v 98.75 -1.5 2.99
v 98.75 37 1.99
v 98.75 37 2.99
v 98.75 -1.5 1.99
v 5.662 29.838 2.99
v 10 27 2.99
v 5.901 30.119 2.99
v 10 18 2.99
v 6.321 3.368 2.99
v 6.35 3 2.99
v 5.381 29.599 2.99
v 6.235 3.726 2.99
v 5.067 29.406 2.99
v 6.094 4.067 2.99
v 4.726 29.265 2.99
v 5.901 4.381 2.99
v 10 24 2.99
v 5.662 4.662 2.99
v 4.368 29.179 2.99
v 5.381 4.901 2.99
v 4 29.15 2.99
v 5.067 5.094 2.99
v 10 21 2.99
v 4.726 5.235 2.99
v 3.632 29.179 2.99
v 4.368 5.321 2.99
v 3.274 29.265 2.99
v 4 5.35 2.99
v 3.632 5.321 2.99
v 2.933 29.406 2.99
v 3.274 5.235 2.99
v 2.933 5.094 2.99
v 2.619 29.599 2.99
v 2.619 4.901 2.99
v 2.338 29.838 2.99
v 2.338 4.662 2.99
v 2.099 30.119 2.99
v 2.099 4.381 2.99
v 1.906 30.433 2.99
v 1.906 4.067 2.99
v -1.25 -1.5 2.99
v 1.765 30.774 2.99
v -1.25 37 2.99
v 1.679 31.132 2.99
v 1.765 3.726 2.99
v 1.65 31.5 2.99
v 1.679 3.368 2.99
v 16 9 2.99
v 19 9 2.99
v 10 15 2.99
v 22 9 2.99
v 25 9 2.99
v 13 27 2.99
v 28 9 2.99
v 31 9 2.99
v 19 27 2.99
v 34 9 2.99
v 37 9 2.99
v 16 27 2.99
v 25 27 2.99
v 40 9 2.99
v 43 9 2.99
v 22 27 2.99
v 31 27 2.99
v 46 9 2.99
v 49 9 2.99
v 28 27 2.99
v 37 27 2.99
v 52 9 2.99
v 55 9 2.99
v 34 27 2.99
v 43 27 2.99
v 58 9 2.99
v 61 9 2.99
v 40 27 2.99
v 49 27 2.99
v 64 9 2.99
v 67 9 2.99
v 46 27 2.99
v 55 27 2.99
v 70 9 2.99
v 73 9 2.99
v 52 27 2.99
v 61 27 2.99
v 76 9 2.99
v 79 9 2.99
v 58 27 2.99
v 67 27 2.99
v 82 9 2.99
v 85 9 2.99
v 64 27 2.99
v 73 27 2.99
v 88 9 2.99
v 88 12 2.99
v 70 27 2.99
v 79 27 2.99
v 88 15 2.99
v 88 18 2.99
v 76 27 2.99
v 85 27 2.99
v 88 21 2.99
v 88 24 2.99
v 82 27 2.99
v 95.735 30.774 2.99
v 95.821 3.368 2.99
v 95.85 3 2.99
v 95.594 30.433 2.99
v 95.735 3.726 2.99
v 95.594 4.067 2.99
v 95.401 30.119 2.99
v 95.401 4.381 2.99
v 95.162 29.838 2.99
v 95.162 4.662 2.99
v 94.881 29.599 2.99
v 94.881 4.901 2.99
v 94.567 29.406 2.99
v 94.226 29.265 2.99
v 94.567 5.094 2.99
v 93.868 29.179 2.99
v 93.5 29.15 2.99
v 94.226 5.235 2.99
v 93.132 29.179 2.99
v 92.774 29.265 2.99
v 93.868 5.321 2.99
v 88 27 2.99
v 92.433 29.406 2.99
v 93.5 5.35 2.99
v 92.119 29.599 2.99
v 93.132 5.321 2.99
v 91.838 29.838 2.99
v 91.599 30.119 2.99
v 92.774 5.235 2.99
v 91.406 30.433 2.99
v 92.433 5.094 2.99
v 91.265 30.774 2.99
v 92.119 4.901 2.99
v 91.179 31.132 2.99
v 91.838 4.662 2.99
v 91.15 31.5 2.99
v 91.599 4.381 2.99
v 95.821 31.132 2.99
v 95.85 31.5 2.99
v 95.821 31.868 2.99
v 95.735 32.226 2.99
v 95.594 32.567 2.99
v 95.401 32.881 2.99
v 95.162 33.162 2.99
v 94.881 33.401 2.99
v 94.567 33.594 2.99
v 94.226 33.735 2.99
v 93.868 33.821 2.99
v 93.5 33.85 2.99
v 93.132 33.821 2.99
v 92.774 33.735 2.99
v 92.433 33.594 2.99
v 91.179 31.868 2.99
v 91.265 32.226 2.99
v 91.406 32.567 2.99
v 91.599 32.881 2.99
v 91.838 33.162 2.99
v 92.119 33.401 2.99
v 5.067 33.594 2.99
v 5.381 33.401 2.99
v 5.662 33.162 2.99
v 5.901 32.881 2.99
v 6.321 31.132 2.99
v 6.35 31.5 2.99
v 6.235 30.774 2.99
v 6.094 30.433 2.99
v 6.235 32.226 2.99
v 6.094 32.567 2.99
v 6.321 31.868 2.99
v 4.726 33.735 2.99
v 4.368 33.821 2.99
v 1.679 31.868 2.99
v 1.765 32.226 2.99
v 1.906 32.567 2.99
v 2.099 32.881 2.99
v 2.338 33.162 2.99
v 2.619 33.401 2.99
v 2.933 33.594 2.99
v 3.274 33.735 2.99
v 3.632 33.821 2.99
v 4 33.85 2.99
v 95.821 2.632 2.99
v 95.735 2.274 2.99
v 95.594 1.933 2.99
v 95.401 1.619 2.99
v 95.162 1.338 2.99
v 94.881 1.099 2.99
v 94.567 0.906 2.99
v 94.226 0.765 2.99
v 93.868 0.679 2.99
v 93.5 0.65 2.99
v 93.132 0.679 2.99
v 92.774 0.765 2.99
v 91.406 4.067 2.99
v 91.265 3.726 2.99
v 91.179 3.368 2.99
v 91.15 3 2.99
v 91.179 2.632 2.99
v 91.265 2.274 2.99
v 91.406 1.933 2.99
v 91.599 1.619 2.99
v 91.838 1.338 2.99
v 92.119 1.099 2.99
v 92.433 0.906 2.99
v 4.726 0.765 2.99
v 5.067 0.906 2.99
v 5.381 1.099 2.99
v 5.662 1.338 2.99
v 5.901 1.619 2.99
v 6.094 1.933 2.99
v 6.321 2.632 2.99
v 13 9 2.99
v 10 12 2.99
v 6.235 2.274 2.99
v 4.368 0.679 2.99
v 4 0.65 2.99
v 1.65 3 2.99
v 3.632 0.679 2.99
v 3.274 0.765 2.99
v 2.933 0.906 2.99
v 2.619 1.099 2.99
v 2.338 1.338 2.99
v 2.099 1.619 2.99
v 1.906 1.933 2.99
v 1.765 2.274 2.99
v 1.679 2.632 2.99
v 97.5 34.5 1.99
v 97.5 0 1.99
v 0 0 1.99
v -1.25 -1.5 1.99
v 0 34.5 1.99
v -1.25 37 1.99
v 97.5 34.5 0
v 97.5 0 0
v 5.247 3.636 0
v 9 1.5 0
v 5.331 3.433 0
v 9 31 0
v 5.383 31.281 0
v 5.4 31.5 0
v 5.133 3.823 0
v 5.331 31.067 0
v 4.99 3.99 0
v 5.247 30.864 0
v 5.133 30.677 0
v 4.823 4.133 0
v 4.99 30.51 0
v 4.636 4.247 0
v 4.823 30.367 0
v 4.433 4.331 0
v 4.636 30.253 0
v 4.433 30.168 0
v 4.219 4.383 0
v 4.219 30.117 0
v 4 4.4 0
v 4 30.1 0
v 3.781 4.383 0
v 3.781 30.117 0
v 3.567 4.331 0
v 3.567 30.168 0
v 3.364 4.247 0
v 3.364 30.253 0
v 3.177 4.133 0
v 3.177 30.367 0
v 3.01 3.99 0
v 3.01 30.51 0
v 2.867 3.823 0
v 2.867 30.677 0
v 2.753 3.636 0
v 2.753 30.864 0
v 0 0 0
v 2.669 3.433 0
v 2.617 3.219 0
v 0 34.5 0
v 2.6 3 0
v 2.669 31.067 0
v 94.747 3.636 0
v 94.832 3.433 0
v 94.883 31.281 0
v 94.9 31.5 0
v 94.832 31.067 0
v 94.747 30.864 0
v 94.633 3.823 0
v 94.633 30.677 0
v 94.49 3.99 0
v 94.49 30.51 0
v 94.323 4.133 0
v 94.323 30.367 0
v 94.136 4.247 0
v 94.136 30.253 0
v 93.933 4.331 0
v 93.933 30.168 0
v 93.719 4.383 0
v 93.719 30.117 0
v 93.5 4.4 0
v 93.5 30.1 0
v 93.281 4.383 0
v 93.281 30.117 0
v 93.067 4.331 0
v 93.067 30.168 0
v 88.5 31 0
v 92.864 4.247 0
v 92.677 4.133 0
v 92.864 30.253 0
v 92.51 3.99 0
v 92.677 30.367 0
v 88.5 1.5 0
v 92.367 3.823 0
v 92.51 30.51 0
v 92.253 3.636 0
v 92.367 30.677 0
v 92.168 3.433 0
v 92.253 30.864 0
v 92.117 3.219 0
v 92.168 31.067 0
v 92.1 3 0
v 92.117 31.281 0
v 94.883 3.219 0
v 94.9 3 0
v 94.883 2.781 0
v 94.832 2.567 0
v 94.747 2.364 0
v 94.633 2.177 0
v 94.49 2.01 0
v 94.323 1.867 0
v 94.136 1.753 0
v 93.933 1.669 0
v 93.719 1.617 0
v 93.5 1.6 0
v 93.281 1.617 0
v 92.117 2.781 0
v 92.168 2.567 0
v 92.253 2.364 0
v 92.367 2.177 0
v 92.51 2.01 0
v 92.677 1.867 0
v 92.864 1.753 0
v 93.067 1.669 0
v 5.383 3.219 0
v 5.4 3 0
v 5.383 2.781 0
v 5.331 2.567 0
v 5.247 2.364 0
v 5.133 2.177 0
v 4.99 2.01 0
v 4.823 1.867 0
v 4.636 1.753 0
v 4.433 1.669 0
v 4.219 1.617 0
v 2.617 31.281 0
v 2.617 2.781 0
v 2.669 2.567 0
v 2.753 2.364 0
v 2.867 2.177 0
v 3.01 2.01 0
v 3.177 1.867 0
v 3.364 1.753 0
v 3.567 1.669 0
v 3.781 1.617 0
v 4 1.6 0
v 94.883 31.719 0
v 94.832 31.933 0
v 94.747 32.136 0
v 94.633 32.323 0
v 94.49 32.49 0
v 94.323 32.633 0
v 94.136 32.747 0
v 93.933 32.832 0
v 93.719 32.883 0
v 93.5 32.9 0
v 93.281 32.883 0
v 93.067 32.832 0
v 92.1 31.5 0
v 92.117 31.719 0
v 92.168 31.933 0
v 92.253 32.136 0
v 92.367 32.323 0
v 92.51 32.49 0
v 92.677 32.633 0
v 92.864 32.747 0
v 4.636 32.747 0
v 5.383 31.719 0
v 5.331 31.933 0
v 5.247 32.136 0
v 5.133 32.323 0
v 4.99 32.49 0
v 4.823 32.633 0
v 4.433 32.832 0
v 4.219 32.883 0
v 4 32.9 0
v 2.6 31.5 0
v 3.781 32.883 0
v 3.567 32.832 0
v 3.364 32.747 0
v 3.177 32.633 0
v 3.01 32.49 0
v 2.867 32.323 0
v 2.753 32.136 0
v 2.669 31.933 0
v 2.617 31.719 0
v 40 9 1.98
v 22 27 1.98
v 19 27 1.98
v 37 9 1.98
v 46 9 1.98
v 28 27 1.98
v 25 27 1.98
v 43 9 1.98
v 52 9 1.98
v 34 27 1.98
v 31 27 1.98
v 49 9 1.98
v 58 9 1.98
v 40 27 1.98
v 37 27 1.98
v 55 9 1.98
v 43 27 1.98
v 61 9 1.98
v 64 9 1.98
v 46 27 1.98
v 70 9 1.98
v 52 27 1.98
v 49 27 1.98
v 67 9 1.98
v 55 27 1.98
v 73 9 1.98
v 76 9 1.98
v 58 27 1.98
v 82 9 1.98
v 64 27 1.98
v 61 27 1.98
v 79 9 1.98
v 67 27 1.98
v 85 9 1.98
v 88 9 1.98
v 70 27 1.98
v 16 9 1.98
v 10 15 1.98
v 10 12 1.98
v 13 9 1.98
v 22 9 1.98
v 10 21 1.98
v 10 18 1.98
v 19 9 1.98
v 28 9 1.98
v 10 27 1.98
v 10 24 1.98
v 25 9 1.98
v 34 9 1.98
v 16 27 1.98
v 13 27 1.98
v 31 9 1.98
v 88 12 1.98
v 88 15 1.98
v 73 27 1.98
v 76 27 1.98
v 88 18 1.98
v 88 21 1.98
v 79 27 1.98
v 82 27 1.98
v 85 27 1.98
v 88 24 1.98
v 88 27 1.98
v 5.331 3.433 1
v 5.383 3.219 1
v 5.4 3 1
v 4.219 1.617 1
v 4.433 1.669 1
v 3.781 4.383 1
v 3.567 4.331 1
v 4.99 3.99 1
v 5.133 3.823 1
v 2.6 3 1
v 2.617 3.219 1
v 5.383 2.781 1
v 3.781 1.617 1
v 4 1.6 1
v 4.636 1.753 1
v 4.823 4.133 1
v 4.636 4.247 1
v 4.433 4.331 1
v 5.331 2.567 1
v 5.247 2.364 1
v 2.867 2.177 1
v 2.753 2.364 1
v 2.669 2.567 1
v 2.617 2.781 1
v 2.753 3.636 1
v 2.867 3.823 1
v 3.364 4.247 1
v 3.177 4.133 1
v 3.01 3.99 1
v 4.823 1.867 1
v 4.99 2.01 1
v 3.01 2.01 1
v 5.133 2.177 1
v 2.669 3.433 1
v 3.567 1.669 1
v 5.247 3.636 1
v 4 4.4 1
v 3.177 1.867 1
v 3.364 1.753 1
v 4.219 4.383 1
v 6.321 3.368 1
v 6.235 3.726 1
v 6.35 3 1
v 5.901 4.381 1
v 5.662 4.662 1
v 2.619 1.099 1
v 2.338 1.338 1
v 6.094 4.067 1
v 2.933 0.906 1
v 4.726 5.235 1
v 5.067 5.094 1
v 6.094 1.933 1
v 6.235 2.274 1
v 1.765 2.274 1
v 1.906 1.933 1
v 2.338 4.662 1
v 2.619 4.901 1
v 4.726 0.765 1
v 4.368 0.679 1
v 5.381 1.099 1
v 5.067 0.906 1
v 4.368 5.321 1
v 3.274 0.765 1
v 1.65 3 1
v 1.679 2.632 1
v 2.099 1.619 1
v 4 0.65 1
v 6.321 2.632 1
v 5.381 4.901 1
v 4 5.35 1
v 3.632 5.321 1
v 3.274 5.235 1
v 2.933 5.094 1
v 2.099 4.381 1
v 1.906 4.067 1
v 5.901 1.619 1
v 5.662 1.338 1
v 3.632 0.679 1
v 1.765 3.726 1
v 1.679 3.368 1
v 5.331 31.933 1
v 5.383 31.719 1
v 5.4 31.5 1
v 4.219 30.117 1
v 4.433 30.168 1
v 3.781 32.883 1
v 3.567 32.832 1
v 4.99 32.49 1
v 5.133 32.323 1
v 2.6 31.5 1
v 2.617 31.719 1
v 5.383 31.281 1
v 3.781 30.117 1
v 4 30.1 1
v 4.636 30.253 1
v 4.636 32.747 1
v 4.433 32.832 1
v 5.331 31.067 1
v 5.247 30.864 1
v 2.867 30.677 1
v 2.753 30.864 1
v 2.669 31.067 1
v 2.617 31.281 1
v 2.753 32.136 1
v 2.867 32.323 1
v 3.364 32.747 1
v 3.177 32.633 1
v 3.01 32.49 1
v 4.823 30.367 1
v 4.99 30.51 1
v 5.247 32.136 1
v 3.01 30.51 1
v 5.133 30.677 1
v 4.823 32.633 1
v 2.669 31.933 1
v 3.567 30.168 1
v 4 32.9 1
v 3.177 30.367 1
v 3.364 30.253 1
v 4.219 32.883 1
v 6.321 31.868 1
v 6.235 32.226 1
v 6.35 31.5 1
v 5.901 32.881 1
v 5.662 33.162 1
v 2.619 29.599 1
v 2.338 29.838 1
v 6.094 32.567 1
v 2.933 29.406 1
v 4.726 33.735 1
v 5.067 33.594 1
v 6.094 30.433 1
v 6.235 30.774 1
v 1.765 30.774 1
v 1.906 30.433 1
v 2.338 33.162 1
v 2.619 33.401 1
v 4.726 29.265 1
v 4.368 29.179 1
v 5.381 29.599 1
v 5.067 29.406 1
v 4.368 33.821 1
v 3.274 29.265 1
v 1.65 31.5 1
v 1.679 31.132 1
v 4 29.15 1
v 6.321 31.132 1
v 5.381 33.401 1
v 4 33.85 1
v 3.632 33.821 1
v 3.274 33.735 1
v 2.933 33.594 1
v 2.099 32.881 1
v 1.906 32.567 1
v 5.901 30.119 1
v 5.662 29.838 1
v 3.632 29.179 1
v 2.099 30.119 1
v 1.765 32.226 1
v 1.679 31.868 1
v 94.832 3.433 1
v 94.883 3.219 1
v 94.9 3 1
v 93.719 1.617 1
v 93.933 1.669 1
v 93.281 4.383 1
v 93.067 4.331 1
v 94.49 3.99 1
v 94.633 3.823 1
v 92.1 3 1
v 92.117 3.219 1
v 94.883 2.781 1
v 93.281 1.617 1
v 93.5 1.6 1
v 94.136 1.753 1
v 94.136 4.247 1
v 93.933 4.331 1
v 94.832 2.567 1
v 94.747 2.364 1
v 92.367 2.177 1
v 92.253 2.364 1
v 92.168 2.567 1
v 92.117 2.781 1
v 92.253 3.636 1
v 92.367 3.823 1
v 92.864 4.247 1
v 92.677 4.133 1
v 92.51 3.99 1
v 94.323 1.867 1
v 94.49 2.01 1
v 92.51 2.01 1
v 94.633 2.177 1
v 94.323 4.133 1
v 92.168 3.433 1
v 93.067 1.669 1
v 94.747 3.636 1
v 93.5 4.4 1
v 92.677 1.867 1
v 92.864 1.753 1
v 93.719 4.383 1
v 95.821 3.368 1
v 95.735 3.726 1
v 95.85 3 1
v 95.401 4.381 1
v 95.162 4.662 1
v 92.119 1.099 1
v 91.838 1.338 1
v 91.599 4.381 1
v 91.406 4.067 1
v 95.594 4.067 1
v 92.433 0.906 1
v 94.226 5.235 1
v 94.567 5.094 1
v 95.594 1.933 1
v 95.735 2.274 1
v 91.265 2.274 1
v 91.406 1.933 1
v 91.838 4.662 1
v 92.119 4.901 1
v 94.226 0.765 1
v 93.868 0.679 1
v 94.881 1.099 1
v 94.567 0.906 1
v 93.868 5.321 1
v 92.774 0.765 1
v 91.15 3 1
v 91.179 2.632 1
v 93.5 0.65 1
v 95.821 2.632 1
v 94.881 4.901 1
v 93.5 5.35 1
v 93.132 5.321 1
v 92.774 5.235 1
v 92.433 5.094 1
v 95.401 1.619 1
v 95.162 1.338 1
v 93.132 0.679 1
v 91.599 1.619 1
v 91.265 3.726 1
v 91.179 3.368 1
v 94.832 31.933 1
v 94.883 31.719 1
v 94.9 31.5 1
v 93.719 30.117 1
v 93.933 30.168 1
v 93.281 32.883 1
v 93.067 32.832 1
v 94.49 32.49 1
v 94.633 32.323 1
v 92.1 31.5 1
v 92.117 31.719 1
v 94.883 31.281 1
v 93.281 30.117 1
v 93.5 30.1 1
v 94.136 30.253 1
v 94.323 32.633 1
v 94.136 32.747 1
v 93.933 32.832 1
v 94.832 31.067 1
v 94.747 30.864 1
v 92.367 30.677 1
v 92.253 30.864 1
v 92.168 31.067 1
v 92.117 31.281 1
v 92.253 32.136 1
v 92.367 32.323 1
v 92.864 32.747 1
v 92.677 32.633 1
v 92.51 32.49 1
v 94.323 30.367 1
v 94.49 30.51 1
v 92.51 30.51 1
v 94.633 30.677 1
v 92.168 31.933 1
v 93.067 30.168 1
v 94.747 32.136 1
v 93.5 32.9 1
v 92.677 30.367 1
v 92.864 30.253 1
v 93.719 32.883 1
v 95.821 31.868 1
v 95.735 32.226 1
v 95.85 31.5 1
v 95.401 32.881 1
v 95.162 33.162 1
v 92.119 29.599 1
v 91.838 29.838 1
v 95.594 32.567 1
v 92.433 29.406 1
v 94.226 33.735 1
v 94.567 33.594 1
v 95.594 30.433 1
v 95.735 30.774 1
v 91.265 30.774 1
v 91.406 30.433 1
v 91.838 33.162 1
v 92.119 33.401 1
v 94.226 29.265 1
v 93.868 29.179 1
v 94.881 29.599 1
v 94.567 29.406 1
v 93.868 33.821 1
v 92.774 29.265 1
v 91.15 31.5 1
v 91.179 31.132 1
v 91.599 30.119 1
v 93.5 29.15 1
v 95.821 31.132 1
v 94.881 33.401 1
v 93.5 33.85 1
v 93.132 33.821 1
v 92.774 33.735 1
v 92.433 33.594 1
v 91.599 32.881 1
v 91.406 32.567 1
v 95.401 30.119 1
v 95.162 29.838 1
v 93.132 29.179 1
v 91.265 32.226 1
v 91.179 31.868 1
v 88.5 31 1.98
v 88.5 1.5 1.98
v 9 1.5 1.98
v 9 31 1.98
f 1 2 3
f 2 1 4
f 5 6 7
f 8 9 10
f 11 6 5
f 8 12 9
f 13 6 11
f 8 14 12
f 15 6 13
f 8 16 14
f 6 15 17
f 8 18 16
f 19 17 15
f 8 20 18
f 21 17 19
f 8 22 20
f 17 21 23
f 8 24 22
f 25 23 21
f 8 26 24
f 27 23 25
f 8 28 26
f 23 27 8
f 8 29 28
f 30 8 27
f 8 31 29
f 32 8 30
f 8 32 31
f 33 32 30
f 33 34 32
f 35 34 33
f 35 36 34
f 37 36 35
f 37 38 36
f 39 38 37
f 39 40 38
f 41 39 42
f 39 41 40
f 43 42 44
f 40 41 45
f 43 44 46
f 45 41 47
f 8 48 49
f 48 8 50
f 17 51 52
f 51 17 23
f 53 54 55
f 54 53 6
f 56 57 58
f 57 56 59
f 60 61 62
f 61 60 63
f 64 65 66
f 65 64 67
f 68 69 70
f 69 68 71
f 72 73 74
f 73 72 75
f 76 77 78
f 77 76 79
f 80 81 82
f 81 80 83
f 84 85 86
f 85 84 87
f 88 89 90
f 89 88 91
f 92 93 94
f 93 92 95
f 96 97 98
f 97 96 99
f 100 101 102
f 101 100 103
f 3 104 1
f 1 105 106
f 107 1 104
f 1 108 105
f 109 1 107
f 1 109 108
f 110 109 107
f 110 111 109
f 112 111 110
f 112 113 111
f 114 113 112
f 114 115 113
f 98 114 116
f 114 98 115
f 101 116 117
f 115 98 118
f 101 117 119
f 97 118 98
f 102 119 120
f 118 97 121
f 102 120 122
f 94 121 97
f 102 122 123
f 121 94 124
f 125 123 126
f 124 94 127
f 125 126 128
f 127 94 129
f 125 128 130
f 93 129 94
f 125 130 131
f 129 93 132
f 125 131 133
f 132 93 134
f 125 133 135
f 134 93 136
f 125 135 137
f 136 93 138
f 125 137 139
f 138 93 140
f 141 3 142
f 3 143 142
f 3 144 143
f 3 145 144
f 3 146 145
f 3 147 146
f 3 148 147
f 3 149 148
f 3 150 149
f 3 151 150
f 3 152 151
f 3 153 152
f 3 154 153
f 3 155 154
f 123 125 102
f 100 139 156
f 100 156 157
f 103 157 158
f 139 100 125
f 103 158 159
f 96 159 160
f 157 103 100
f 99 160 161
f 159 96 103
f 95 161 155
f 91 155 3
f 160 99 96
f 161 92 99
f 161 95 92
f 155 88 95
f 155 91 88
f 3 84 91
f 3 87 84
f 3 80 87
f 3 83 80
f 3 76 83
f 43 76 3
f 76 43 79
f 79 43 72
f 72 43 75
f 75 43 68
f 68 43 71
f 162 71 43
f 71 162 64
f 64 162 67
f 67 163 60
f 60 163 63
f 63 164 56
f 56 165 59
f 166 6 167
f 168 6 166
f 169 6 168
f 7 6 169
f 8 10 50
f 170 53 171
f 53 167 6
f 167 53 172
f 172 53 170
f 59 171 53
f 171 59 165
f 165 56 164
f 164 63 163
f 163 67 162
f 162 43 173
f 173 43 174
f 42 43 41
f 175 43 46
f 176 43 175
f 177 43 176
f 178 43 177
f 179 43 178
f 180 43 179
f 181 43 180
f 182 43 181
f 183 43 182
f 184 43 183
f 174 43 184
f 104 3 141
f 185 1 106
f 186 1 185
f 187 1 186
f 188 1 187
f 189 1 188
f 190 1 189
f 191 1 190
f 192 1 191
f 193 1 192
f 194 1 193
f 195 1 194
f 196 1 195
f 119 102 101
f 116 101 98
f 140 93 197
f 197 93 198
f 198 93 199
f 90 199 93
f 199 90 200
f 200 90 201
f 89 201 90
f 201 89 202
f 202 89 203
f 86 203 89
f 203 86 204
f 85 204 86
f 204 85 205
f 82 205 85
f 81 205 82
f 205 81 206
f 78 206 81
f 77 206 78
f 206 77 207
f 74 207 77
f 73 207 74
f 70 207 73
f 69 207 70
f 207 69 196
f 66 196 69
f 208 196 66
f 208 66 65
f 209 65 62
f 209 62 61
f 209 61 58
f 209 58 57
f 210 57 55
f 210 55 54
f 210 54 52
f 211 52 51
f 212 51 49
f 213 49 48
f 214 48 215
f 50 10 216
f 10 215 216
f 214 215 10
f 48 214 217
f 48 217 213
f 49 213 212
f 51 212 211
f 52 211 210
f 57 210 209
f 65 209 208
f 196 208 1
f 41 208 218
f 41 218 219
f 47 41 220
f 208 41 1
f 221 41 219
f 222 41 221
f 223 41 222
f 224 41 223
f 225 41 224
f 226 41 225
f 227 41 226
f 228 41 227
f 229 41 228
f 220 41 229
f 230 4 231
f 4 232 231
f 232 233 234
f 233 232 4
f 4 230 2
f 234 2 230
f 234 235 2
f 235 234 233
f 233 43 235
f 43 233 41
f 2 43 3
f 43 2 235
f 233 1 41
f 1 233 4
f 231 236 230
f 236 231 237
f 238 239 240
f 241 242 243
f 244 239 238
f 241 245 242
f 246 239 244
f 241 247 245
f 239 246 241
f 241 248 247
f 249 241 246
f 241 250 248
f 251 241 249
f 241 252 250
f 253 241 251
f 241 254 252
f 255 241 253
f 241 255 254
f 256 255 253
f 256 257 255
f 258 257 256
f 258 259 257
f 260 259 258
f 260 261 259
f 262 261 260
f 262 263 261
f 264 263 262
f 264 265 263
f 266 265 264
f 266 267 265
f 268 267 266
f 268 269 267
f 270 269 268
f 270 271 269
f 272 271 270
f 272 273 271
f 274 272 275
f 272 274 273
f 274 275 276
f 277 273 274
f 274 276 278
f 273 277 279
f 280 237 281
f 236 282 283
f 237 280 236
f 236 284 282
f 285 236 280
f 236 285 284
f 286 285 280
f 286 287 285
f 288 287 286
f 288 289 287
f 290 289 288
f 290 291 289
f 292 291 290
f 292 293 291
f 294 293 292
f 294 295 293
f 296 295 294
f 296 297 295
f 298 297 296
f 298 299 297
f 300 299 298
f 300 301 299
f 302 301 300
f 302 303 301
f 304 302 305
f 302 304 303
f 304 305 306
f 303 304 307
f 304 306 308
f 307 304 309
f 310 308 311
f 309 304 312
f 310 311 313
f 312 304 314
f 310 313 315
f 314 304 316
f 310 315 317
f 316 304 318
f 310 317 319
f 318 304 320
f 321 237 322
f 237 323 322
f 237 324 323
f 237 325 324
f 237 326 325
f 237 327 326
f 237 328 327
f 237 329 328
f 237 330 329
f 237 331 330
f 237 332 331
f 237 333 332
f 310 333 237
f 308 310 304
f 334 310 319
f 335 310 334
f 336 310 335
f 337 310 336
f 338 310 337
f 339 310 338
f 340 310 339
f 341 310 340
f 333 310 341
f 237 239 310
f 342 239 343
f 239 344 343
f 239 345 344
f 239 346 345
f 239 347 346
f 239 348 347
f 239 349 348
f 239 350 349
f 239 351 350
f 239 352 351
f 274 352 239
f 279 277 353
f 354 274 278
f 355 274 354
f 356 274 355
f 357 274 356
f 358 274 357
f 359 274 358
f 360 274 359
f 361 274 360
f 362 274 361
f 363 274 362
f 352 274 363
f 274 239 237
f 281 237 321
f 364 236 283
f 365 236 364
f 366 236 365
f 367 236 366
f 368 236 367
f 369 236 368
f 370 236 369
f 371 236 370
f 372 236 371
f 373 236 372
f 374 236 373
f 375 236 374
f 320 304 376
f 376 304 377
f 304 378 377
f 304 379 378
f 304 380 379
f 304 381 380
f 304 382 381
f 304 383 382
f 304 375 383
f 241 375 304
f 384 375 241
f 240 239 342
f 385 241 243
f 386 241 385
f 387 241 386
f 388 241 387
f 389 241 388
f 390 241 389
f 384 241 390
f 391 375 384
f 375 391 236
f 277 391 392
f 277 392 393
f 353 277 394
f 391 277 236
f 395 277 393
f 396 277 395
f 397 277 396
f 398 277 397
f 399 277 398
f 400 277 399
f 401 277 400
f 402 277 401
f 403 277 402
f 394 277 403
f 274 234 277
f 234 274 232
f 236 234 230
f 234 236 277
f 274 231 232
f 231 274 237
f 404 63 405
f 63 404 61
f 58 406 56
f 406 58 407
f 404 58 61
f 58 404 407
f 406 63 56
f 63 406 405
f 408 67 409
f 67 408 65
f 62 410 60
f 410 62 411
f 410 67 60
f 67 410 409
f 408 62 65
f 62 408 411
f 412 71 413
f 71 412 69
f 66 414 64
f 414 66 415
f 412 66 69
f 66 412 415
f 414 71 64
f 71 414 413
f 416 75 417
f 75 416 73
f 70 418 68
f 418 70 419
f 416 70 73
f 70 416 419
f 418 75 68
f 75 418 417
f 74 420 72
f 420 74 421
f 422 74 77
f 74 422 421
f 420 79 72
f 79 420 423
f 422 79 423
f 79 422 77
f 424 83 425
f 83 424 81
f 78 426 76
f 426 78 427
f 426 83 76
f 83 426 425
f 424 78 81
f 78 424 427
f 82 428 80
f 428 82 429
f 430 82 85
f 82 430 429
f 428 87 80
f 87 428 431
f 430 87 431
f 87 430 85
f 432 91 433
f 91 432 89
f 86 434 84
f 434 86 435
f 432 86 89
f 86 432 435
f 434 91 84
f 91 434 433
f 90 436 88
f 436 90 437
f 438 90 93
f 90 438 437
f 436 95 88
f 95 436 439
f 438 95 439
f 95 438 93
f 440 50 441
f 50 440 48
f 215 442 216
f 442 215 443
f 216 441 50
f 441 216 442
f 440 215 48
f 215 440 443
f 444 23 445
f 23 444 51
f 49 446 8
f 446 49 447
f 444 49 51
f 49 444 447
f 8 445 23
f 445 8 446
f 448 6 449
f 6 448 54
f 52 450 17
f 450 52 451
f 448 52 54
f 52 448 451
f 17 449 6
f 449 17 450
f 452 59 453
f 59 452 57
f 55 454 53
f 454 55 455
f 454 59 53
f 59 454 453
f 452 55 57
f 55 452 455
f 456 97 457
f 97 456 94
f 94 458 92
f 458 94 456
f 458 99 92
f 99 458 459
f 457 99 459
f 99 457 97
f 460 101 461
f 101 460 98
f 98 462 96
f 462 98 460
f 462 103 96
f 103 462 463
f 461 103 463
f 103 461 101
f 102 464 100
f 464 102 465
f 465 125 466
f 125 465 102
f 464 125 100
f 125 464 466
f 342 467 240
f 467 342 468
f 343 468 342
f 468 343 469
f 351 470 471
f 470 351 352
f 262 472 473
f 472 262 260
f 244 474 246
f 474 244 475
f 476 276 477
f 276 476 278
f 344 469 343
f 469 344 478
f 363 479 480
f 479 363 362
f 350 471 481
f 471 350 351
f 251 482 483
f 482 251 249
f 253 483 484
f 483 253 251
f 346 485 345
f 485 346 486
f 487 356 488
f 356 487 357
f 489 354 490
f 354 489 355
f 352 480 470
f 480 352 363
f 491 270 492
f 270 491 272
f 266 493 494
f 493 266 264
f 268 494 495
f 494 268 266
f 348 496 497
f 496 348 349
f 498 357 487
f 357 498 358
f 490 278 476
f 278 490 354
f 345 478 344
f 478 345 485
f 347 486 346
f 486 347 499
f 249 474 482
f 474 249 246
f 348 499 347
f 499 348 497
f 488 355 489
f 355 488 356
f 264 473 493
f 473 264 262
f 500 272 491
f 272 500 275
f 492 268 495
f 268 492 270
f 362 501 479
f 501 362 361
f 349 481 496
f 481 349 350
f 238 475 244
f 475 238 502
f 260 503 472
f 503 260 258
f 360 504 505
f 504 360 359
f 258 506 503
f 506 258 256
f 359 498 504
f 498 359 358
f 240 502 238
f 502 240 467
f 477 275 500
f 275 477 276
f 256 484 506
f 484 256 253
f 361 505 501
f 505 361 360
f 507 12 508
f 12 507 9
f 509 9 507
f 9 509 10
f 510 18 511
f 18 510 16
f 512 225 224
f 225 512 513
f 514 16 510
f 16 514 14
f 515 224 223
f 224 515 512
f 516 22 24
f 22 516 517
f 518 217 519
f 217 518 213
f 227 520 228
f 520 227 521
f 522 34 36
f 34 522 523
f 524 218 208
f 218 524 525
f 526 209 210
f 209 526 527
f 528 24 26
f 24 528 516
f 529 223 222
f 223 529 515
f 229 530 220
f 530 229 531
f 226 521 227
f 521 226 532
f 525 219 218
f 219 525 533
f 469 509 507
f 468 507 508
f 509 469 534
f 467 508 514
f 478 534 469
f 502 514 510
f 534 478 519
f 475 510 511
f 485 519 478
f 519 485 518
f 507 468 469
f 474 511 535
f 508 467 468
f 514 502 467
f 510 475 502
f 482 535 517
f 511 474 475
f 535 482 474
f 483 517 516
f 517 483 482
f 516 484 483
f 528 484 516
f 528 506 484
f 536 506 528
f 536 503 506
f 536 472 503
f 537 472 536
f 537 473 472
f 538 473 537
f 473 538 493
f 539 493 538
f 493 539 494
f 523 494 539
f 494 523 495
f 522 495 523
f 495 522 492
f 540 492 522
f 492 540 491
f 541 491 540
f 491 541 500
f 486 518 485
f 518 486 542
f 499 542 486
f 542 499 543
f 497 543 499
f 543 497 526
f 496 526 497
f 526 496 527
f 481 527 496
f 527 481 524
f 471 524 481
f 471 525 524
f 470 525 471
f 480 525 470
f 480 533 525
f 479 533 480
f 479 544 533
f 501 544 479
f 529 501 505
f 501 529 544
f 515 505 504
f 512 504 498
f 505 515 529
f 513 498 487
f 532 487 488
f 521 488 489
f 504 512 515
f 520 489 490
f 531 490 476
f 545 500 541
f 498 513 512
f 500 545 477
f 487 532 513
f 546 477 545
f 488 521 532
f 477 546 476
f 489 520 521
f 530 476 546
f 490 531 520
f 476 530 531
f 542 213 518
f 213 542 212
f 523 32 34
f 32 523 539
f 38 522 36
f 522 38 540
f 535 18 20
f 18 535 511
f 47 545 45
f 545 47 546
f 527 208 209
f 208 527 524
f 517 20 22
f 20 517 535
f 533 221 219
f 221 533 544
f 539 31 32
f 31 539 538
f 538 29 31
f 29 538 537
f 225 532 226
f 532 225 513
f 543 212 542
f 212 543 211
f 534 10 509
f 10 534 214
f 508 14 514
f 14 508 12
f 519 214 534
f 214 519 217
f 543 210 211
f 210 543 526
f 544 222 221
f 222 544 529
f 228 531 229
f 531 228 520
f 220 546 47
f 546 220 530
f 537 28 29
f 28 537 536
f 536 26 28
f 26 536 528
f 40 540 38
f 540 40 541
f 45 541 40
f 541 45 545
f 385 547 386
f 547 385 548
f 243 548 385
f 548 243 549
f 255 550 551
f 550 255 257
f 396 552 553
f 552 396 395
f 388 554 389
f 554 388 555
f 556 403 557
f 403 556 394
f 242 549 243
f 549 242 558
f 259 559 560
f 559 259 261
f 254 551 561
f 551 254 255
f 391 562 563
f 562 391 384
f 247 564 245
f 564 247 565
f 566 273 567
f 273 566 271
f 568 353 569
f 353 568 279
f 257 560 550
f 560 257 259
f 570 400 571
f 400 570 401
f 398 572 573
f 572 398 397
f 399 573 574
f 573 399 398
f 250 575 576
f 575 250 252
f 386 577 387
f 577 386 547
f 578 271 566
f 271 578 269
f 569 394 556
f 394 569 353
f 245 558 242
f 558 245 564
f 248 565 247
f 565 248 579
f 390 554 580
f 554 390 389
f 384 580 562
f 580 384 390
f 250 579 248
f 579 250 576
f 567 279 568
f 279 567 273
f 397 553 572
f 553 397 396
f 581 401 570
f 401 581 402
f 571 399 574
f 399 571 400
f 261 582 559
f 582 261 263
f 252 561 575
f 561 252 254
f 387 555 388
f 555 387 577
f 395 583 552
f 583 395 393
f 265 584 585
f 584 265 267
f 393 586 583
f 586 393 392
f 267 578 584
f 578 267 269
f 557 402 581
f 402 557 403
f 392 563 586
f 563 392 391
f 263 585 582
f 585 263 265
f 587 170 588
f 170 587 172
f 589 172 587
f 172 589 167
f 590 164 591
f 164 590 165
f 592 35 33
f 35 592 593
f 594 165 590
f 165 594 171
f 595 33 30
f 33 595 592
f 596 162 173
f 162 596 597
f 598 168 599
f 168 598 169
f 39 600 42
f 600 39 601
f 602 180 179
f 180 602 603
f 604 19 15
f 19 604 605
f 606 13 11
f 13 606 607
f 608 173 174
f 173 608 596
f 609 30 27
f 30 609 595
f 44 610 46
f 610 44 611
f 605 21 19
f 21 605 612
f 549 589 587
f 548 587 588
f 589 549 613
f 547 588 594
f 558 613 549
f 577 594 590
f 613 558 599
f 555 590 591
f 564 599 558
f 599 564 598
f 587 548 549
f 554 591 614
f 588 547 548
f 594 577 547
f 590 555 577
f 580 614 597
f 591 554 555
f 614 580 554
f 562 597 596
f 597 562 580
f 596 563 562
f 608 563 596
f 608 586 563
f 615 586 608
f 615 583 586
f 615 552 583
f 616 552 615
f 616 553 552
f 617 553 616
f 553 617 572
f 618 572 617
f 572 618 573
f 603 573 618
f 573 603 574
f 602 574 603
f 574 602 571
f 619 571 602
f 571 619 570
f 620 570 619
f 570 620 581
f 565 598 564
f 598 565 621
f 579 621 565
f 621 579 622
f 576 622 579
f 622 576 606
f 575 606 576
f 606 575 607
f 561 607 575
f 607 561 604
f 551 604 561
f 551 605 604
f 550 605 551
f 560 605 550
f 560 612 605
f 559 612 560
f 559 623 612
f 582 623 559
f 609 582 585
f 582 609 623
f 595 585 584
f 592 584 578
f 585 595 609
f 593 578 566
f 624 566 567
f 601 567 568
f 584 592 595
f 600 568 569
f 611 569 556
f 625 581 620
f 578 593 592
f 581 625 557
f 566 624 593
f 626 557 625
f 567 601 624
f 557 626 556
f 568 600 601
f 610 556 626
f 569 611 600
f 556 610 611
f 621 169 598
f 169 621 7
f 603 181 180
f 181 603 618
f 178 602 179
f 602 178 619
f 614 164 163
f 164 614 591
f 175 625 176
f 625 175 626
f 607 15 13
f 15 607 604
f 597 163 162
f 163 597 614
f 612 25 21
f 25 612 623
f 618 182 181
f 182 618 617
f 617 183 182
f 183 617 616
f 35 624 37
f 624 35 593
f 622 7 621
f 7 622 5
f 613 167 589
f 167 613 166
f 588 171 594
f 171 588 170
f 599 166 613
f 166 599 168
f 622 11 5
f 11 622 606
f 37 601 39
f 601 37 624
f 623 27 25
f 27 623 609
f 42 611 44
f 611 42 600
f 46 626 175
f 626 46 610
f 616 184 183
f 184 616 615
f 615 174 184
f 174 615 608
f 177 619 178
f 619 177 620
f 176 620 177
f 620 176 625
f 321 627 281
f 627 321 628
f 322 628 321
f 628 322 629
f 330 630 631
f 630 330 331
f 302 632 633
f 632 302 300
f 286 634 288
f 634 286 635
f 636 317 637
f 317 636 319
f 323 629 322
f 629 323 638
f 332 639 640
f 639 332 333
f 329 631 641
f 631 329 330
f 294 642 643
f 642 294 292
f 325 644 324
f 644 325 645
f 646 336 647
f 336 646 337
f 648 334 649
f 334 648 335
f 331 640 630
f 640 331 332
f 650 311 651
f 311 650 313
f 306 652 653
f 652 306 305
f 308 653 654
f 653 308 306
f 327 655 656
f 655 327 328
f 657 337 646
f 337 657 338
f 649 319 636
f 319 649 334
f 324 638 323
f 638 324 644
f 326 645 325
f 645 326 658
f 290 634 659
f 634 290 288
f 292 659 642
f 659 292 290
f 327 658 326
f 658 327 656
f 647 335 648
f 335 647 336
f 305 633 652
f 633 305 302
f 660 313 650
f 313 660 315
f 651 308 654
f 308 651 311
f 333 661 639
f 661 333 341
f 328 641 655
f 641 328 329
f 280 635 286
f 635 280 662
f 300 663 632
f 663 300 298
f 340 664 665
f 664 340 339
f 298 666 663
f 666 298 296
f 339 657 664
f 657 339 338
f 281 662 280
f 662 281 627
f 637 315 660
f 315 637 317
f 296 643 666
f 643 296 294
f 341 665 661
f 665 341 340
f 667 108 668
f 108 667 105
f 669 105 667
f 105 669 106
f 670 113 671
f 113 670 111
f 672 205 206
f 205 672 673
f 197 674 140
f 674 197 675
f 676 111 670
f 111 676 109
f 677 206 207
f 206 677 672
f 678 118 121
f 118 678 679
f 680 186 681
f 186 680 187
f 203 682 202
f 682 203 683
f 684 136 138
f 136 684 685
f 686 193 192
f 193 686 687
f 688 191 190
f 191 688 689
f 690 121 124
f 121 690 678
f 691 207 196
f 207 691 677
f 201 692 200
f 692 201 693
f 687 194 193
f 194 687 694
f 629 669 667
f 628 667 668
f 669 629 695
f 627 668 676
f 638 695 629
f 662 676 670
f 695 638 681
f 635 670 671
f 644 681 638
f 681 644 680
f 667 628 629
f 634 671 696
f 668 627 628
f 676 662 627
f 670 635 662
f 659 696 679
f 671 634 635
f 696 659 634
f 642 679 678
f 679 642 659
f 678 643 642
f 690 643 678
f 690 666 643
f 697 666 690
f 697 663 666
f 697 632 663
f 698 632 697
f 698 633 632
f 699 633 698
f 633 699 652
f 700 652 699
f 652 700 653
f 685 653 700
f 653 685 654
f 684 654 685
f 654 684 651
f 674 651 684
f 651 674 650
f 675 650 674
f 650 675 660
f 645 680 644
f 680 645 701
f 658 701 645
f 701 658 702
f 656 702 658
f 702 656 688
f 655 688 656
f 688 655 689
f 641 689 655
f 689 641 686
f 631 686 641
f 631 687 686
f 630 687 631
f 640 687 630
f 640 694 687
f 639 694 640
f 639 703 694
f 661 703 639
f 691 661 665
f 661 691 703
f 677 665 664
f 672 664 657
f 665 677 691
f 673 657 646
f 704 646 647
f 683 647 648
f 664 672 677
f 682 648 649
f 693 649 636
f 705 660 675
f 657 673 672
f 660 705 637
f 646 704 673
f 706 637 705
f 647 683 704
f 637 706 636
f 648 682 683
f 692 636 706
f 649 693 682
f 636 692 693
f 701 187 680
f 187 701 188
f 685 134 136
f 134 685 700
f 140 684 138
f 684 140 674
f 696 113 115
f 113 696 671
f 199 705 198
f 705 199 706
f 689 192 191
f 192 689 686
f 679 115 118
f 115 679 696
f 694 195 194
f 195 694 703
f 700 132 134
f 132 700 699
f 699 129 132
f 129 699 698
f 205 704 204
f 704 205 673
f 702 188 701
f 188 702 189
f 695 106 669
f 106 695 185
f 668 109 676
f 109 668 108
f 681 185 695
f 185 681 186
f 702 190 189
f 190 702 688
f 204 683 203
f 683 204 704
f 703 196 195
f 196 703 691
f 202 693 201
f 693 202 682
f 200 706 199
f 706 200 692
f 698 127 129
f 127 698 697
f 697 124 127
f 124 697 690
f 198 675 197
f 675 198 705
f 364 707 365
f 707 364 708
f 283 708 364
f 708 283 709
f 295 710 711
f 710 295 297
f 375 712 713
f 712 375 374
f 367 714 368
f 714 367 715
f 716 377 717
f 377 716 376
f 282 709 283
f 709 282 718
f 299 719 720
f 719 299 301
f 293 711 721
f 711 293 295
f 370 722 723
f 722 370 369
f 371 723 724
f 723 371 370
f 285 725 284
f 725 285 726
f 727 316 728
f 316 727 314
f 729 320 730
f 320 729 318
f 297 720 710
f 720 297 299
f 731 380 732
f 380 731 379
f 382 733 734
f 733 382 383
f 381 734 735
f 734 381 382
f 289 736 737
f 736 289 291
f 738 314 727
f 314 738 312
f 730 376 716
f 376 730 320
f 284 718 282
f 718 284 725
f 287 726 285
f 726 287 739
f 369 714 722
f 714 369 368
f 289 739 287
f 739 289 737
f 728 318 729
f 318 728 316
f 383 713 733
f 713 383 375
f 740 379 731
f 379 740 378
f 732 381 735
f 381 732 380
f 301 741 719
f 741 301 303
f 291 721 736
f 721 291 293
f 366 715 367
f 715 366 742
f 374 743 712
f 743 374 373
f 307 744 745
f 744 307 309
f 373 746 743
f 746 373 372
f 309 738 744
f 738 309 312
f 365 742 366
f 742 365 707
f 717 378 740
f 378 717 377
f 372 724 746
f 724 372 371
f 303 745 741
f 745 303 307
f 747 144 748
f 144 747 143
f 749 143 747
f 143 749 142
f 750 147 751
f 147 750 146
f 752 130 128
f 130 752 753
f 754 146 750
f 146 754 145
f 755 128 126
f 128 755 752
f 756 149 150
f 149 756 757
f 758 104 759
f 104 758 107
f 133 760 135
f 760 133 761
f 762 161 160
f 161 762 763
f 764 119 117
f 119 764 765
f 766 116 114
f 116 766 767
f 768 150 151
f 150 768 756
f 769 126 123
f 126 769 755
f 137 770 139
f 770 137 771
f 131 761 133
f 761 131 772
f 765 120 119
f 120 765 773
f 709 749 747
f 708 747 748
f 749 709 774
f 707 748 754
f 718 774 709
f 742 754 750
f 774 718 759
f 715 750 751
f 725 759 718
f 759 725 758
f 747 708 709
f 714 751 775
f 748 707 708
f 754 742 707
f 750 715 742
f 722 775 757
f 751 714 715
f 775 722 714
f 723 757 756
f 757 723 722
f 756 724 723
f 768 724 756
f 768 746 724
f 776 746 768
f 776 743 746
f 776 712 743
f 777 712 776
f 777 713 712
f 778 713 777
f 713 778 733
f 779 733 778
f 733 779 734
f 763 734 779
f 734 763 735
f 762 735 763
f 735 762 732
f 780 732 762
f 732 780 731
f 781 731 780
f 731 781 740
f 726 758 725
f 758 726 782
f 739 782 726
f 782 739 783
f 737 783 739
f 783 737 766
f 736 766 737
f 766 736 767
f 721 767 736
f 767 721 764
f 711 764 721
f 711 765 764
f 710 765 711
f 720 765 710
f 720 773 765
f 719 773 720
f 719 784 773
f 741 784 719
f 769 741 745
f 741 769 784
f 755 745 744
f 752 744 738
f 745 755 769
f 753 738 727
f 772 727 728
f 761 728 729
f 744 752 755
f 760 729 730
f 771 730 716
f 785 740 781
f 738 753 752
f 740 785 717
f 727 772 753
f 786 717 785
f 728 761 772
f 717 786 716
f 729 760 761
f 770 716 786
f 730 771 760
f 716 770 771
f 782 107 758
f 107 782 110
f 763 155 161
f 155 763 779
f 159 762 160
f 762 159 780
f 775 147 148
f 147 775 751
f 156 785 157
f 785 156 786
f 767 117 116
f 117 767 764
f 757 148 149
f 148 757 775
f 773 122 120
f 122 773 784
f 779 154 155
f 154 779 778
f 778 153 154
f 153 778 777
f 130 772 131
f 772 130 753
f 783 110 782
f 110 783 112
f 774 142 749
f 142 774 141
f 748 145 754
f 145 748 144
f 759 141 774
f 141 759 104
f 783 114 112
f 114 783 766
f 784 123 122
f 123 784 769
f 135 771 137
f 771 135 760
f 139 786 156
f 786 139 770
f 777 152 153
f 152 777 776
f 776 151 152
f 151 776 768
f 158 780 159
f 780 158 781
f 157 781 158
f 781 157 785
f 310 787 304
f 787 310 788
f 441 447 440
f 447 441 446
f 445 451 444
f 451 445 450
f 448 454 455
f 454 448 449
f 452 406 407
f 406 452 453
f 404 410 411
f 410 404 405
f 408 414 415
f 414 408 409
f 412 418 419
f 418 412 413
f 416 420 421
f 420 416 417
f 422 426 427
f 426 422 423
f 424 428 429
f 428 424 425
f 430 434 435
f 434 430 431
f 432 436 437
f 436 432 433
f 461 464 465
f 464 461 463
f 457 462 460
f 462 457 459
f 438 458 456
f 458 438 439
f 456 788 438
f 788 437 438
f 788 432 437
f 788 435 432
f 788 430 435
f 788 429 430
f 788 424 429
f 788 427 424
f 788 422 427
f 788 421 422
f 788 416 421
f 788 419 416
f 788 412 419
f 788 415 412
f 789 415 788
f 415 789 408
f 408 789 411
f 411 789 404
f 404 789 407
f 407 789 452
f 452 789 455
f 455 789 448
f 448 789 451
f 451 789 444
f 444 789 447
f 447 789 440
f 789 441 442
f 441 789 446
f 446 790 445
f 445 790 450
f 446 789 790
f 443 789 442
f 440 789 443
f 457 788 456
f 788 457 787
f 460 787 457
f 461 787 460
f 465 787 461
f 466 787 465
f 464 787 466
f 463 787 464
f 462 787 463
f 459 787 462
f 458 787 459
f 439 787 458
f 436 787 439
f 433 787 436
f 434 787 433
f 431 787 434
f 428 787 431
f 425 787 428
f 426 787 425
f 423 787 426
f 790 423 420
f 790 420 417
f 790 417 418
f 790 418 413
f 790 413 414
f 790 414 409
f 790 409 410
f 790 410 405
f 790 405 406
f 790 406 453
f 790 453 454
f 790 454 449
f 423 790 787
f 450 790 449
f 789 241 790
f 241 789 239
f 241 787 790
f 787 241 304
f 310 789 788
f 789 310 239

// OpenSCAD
//amendments by rogerw-gh to fix issues and make assembly simpler
// add new components - separate legs, platform surfaces
// increased depth of back volume, changed holes
// add stiffening ribs to back

//Choose a pattern for the ventilated back
perforations = 4;// [1:squares,2:circles,3:hexagons,4:diagonal slots]

/* [Hidden] */

$fa = 1;
$fs = 0.4;
cd = 0.1;// small offset for removing holes and cavities
pa = 0.3;// 'print allowance' addtional size for holes to accommodate improperly sized holes 
square_xy = 4;
back_x = 97.5;
back_y = 34.5;
front_x = 100;
front_y = 37.5;
diff_x = (front_x - back_x) /2;
diff_y = (front_y - back_y)/2;
back_z = 2;
first_row_y = 10;
second_row_y = 17;
third_row_y = 24;
screw_hole_x = 4;
screw_hole_y = 3;
screw_hole_dia = 2.5+pa;
head_hole_dia = 4.7;
bolt_round = 40;

//translate ([-diff_x,-diff_y,1.99]) cube ([front_x,front_y,back_z]);
new_back ();

// test location marker positioning
//translate ([0,12,0]) cube ([13.25,2,6]);
//translate ([back_x-13.25,12,0]) cube ([13.25,2,6]);

module new_back () {
    difference () {
        union () {
            translate ([-diff_x,-diff_y,1.99]) cube ([front_x,front_y+1,back_z/2]);
            cube ([back_x,back_y,back_z]);
        }//end union
        //perforations..
        if (perforations == 1) {
            square_holes ();
        }//endif
        if (perforations == 2) {
            round_holes ();
        }//endif
        if (perforations == 3) {
            hex_holes ();
        }//endif
        if (perforations == 4) {
            diagonal_slots ();
        }//endif
        
        drill_screw_holes ();
        internal_recess ();
        
    }//end diff
}//end module

module internal_recess () {
    //stiffening ribs
      translate ([9,1.5,-0.01]) cube ([back_x-18,back_y-5,back_z-0.01]);
}//end module

module drill_screw_holes () {
    translate ([screw_hole_x,screw_hole_y,-cd]) 
        cylinder (d=screw_hole_dia,h=back_z*3,$fn=bolt_round);
    translate ([screw_hole_x,screw_hole_y,back_z-1]) 
        cylinder (d=head_hole_dia,h=back_z,$fn=bolt_round);
    
    
    translate ([screw_hole_x,back_y-screw_hole_y,-cd])
        cylinder (d=screw_hole_dia,h=back_z*3,$fn=bolt_round);
    translate ([screw_hole_x,back_y-screw_hole_y,back_z-1])
        cylinder (d=head_hole_dia,h=back_z,$fn=bolt_round);
    
    translate ([back_x-screw_hole_x,screw_hole_y,-cd])
        cylinder (d=screw_hole_dia,h=back_z*3,$fn=bolt_round);
    translate ([back_x-screw_hole_x,screw_hole_y,back_z-1])
        cylinder (d=head_hole_dia,h=back_z,$fn=bolt_round);
    
    translate ([back_x-screw_hole_x,back_y-screw_hole_y,-cd])
        cylinder (d=screw_hole_dia,h=back_z*3,$fn=bolt_round);
    translate ([back_x-screw_hole_x,back_y-screw_hole_y,back_z-1])
        cylinder (d=head_hole_dia,h=back_z,$fn=bolt_round);
    
    
    
}//end module

module diagonal_slots () {
    slot_width = 3;
    slot_offset = 6;
    slot_count = 9;
    slot1_pts = [[3,0],[6,0],[0,6],[0,3]];
    slot2_pts = [[3+slot_offset,0],[6+slot_offset,0],[0,6+slot_offset],[0,3+slot_offset]];
    slot3_pts = [[3+slot_offset*2,0],[6+slot_offset*2,0],[0,6+slot_offset*2],[0,3+slot_offset*2]];
    
    slot4_pts = [[3+slot_offset*3,0],[6+slot_offset*3,0],[slot_offset,6+slot_offset*2],[slot_offset-3,6+slot_offset*2]];
        
 ///   slot5_pts = [[3+slot_offset*3,0],[6+slot_offset*3,0],[slot_offset,6+slot_offset*2],[slot_offset-3,6+slot_offset*2]];
    
    translate ([10,9,-cd] ) linear_extrude (back_z*3) polygon (slot1_pts);
    translate ([10,9,-cd] ) linear_extrude (back_z*3) polygon (slot2_pts);
    translate ([10,9,-cd] ) linear_extrude (back_z*3) polygon (slot3_pts);
    translate ([10,9,-cd] ) linear_extrude (back_z*3) polygon (slot4_pts);
    
    for (slot_pos=[1:slot_count]){
        
        translate ([10+slot_pos*slot_offset,9,-cd] ) 
            linear_extrude (back_z*3) 
                polygon (slot4_pts);
    }//endfor
    
    //end slots
    final_x = slot_count*slot_offset+10;
    
    slot_end_pts = [[slot_offset*4,slot_width],[slot_offset*4,slot_offset],[slot_offset*2,slot_offset*3],[slot_offset+3,slot_offset*3]];
    translate ([final_x,9,-cd] ) 
            linear_extrude (back_z*3) 
                polygon (slot_end_pts);
    
    slot_end_pts2 = [[slot_offset*4,slot_offset*1+slot_width],[slot_offset*4,slot_offset*2],[slot_offset*3,slot_offset*3],[slot_offset+9,6+slot_offset*2]];
    translate ([final_x,9,-cd] ) 
            linear_extrude (back_z*3) 
                polygon (slot_end_pts2);
    slot_end_pts3 = [[slot_offset*4,slot_offset*2+slot_width],[slot_offset*4,slot_offset*3],[slot_offset*3+slot_width,slot_offset*3]];
    translate ([final_x,9,-cd] ) 
            linear_extrude (back_z*3) 
                polygon (slot_end_pts3);
}

module square_holes () {
    row_count = 3;
    hole_count = 12;
    hole_off_x = 15;
    square_xy = 4;
    hole_x = 7;
    row_1_y = 10;
    row_2_y = row_1_y + hole_x;
    row_3_y = row_2_y + hole_x;
    
    hole_dist = hole_x*hole_count;
    //echo (hole_dist=hole_dist);
    start_x = (back_x - hole_dist)/2 + (hole_x - square_xy)/2;
    //echo (start_x);
    //row 1
    for (hole=[0:1:hole_count-1]) {
        translate ([start_x+hole*hole_x,row_1_y,-cd])
            cube([4,4,back_z*3]);
        //echo(hole_off_x+hole*hole_x);
    }
    for (hole=[0:1:hole_count-1]) {
        translate ([start_x+hole*hole_x,row_2_y,-cd])
            cube([4,4,back_z*3]);
        //echo(hole_off_x+hole*hole_x);
    }
    for (hole=[0:1:hole_count-1]) {
        translate ([start_x+hole*hole_x,row_3_y,-cd])
            cube([4,4,back_z*3]);
        //echo(hole_off_x+hole*hole_x);
    }
    
}//end module

module round_holes () {
    row_count = 3;
    hole_count = 12;
    hole_off_x = 15;
    hole_x = 7;
    hole_dia = 5;
    row_1_y = 10+hole_dia/2;
    row_2_y = 10 + hole_dia + hole_dia/2;
    row_3_y = 10 + hole_dia*2 + hole_dia/2;
    row_4_y = 10 + hole_dia*3 + hole_dia/2;
    hole_dist = hole_x*hole_count;

    start_x = (back_x - hole_dist)/2 + (hole_x)/2;
    start_2 = (back_x - hole_dist)/2 + (hole_x);
    
    //row 1
    for (hole=[0:1:hole_count-1]) {
        translate ([start_x+hole*hole_x,row_1_y,-cd])
            cylinder (d=hole_dia,h=back_z*3,$fn=40);
    }
    for (hole=[0:1:hole_count-2]) {
        translate ([start_2+hole*hole_x,row_2_y,-cd])
            cylinder (d=hole_dia,h=back_z*3,$fn=40);
    }
    for (hole=[0:1:hole_count-1]) {
        translate ([start_x+hole*hole_x,row_3_y,-cd])
            cylinder (d=hole_dia,h=back_z*3,$fn=40);
    }
        for (hole=[0:1:hole_count-2]) {
        translate ([start_2+hole*hole_x,row_4_y,-cd])
            cylinder (d=hole_dia,h=back_z*3,$fn=40);
    }
    
}//end module

module hex_holes () {
    row_count = 3;
    hole_count = 10;
    hole_off_x = 15;
    hole_x = 8;
    hole_dia = 6;
    //row_1_y = 10;
    row_1_y = 10+hole_dia/2;
    row_2_y = 10 + hole_dia + hole_dia/2;
    row_3_y = 10 + hole_dia*2 + hole_dia/2;
    row_4_y = 10 + hole_dia*3 + hole_dia/2;
    hole_dist = hole_x*hole_count;

    start_x = (back_x - hole_dist)/2 + (hole_x)/2;
    start_2 = (back_x - hole_dist)/2 ;
    //row 1
        //row 1
    for (hole=[0:1:hole_count-1]) {
        translate ([start_x+hole*hole_x,row_1_y,-cd])
            cylinder (d=hole_dia,h=back_z*3,$fn=6);
    }
    for (hole=[0:1:hole_count]) {
        translate ([start_2+hole*hole_x,row_2_y,-cd])
            cylinder (d=hole_dia,h=back_z*3,$fn=6);
    }
    for (hole=[0:1:hole_count-1]) {
        translate ([start_x+hole*hole_x,row_3_y,-cd])
            cylinder (d=hole_dia,h=back_z*3,$fn=6);
    }
//        for (hole=[0:1:hole_count]) {
//        translate ([start_2+hole*hole_x,row_4_y,-cd])
//            cylinder (d=hole_dia,h=4,$fn=6);
//    }

    
}//end module

module old_back () {
difference(){
    cube([105,22,39]);
    
    translate([2,-1,-1])
        cube([101,21,38]);
    translate([22.25,19,10])
        cube([4,4,4]);
    translate([28.25,19,10])
    cube([4,4,4]);
    translate([34.25,19,10])
    cube([4,4,4]);
    translate([40.25,19,10])
    cube([4,4,4]);
    translate([46.25,19,10])
    cube([4,4,4]);
    translate([52.25,19,10])
    cube([4,4,4]);
    translate([58.25,19,10])
    cube([4,4,4]);
    translate([64.25,19,10])
    cube([4,4,4]);

    translate([22.25,20,17])
    cube([4,2,4]);
    translate([28.25,20,17])
    cube([4,2,4]);
    translate([34.25,20,17])
    cube([4,2,4]);
    translate([40.25,20,17])
    cube([4,2,4]);
    translate([46.25,20,17])
    cube([4,2,4]);
    translate([52.25,20,17])
    cube([4,2,4]);
    translate([58.25,20,17])
    cube([4,2,4]);
    translate([64.25,20,17])
    cube([4,2,4]);

    translate([22.25,20,24])
    cube([4,2,4]);
    translate([28.25,20,24])
    cube([4,2,4]);
    translate([34.25,20,24])
    cube([4,2,4]);
    translate([40.25,20,24])
    cube([4,2,4]);
    translate([46.25,20,24])
    cube([4,2,4]);
    translate([52.25,20,24])
    cube([4,2,4]);
    translate([58.25,20,24])
    cube([4,2,4]);
    translate([64.25,20,24])
    cube([4,2,4]);
}

rotate([270,0,0])
    translate([17.25,-7.25,15])
        cylinder(h=6,r=1.20);
rotate([270,0,0])
    translate([17.25,-30.5,15])
        cylinder(h=6,r=1.20);
rotate([270,0,0])
    translate([75.50,-7.25,15])
        cylinder(h=6,r=1.20);
rotate([270,0,0])
    translate([75.50,-30.5,15])
        cylinder(h=6,r=1.20);

translate([16,18.6,12])
cube([5,2.4,14]);

translate([2,2,2])
cube([1.25,1,33]);
translate([2,4.3,2])
cube([1.25,1,33]);

translate([102,2,2])
cube([1.25,1,33]);
translate([102,4.3,2])
cube([1.25,1,33]);

}
